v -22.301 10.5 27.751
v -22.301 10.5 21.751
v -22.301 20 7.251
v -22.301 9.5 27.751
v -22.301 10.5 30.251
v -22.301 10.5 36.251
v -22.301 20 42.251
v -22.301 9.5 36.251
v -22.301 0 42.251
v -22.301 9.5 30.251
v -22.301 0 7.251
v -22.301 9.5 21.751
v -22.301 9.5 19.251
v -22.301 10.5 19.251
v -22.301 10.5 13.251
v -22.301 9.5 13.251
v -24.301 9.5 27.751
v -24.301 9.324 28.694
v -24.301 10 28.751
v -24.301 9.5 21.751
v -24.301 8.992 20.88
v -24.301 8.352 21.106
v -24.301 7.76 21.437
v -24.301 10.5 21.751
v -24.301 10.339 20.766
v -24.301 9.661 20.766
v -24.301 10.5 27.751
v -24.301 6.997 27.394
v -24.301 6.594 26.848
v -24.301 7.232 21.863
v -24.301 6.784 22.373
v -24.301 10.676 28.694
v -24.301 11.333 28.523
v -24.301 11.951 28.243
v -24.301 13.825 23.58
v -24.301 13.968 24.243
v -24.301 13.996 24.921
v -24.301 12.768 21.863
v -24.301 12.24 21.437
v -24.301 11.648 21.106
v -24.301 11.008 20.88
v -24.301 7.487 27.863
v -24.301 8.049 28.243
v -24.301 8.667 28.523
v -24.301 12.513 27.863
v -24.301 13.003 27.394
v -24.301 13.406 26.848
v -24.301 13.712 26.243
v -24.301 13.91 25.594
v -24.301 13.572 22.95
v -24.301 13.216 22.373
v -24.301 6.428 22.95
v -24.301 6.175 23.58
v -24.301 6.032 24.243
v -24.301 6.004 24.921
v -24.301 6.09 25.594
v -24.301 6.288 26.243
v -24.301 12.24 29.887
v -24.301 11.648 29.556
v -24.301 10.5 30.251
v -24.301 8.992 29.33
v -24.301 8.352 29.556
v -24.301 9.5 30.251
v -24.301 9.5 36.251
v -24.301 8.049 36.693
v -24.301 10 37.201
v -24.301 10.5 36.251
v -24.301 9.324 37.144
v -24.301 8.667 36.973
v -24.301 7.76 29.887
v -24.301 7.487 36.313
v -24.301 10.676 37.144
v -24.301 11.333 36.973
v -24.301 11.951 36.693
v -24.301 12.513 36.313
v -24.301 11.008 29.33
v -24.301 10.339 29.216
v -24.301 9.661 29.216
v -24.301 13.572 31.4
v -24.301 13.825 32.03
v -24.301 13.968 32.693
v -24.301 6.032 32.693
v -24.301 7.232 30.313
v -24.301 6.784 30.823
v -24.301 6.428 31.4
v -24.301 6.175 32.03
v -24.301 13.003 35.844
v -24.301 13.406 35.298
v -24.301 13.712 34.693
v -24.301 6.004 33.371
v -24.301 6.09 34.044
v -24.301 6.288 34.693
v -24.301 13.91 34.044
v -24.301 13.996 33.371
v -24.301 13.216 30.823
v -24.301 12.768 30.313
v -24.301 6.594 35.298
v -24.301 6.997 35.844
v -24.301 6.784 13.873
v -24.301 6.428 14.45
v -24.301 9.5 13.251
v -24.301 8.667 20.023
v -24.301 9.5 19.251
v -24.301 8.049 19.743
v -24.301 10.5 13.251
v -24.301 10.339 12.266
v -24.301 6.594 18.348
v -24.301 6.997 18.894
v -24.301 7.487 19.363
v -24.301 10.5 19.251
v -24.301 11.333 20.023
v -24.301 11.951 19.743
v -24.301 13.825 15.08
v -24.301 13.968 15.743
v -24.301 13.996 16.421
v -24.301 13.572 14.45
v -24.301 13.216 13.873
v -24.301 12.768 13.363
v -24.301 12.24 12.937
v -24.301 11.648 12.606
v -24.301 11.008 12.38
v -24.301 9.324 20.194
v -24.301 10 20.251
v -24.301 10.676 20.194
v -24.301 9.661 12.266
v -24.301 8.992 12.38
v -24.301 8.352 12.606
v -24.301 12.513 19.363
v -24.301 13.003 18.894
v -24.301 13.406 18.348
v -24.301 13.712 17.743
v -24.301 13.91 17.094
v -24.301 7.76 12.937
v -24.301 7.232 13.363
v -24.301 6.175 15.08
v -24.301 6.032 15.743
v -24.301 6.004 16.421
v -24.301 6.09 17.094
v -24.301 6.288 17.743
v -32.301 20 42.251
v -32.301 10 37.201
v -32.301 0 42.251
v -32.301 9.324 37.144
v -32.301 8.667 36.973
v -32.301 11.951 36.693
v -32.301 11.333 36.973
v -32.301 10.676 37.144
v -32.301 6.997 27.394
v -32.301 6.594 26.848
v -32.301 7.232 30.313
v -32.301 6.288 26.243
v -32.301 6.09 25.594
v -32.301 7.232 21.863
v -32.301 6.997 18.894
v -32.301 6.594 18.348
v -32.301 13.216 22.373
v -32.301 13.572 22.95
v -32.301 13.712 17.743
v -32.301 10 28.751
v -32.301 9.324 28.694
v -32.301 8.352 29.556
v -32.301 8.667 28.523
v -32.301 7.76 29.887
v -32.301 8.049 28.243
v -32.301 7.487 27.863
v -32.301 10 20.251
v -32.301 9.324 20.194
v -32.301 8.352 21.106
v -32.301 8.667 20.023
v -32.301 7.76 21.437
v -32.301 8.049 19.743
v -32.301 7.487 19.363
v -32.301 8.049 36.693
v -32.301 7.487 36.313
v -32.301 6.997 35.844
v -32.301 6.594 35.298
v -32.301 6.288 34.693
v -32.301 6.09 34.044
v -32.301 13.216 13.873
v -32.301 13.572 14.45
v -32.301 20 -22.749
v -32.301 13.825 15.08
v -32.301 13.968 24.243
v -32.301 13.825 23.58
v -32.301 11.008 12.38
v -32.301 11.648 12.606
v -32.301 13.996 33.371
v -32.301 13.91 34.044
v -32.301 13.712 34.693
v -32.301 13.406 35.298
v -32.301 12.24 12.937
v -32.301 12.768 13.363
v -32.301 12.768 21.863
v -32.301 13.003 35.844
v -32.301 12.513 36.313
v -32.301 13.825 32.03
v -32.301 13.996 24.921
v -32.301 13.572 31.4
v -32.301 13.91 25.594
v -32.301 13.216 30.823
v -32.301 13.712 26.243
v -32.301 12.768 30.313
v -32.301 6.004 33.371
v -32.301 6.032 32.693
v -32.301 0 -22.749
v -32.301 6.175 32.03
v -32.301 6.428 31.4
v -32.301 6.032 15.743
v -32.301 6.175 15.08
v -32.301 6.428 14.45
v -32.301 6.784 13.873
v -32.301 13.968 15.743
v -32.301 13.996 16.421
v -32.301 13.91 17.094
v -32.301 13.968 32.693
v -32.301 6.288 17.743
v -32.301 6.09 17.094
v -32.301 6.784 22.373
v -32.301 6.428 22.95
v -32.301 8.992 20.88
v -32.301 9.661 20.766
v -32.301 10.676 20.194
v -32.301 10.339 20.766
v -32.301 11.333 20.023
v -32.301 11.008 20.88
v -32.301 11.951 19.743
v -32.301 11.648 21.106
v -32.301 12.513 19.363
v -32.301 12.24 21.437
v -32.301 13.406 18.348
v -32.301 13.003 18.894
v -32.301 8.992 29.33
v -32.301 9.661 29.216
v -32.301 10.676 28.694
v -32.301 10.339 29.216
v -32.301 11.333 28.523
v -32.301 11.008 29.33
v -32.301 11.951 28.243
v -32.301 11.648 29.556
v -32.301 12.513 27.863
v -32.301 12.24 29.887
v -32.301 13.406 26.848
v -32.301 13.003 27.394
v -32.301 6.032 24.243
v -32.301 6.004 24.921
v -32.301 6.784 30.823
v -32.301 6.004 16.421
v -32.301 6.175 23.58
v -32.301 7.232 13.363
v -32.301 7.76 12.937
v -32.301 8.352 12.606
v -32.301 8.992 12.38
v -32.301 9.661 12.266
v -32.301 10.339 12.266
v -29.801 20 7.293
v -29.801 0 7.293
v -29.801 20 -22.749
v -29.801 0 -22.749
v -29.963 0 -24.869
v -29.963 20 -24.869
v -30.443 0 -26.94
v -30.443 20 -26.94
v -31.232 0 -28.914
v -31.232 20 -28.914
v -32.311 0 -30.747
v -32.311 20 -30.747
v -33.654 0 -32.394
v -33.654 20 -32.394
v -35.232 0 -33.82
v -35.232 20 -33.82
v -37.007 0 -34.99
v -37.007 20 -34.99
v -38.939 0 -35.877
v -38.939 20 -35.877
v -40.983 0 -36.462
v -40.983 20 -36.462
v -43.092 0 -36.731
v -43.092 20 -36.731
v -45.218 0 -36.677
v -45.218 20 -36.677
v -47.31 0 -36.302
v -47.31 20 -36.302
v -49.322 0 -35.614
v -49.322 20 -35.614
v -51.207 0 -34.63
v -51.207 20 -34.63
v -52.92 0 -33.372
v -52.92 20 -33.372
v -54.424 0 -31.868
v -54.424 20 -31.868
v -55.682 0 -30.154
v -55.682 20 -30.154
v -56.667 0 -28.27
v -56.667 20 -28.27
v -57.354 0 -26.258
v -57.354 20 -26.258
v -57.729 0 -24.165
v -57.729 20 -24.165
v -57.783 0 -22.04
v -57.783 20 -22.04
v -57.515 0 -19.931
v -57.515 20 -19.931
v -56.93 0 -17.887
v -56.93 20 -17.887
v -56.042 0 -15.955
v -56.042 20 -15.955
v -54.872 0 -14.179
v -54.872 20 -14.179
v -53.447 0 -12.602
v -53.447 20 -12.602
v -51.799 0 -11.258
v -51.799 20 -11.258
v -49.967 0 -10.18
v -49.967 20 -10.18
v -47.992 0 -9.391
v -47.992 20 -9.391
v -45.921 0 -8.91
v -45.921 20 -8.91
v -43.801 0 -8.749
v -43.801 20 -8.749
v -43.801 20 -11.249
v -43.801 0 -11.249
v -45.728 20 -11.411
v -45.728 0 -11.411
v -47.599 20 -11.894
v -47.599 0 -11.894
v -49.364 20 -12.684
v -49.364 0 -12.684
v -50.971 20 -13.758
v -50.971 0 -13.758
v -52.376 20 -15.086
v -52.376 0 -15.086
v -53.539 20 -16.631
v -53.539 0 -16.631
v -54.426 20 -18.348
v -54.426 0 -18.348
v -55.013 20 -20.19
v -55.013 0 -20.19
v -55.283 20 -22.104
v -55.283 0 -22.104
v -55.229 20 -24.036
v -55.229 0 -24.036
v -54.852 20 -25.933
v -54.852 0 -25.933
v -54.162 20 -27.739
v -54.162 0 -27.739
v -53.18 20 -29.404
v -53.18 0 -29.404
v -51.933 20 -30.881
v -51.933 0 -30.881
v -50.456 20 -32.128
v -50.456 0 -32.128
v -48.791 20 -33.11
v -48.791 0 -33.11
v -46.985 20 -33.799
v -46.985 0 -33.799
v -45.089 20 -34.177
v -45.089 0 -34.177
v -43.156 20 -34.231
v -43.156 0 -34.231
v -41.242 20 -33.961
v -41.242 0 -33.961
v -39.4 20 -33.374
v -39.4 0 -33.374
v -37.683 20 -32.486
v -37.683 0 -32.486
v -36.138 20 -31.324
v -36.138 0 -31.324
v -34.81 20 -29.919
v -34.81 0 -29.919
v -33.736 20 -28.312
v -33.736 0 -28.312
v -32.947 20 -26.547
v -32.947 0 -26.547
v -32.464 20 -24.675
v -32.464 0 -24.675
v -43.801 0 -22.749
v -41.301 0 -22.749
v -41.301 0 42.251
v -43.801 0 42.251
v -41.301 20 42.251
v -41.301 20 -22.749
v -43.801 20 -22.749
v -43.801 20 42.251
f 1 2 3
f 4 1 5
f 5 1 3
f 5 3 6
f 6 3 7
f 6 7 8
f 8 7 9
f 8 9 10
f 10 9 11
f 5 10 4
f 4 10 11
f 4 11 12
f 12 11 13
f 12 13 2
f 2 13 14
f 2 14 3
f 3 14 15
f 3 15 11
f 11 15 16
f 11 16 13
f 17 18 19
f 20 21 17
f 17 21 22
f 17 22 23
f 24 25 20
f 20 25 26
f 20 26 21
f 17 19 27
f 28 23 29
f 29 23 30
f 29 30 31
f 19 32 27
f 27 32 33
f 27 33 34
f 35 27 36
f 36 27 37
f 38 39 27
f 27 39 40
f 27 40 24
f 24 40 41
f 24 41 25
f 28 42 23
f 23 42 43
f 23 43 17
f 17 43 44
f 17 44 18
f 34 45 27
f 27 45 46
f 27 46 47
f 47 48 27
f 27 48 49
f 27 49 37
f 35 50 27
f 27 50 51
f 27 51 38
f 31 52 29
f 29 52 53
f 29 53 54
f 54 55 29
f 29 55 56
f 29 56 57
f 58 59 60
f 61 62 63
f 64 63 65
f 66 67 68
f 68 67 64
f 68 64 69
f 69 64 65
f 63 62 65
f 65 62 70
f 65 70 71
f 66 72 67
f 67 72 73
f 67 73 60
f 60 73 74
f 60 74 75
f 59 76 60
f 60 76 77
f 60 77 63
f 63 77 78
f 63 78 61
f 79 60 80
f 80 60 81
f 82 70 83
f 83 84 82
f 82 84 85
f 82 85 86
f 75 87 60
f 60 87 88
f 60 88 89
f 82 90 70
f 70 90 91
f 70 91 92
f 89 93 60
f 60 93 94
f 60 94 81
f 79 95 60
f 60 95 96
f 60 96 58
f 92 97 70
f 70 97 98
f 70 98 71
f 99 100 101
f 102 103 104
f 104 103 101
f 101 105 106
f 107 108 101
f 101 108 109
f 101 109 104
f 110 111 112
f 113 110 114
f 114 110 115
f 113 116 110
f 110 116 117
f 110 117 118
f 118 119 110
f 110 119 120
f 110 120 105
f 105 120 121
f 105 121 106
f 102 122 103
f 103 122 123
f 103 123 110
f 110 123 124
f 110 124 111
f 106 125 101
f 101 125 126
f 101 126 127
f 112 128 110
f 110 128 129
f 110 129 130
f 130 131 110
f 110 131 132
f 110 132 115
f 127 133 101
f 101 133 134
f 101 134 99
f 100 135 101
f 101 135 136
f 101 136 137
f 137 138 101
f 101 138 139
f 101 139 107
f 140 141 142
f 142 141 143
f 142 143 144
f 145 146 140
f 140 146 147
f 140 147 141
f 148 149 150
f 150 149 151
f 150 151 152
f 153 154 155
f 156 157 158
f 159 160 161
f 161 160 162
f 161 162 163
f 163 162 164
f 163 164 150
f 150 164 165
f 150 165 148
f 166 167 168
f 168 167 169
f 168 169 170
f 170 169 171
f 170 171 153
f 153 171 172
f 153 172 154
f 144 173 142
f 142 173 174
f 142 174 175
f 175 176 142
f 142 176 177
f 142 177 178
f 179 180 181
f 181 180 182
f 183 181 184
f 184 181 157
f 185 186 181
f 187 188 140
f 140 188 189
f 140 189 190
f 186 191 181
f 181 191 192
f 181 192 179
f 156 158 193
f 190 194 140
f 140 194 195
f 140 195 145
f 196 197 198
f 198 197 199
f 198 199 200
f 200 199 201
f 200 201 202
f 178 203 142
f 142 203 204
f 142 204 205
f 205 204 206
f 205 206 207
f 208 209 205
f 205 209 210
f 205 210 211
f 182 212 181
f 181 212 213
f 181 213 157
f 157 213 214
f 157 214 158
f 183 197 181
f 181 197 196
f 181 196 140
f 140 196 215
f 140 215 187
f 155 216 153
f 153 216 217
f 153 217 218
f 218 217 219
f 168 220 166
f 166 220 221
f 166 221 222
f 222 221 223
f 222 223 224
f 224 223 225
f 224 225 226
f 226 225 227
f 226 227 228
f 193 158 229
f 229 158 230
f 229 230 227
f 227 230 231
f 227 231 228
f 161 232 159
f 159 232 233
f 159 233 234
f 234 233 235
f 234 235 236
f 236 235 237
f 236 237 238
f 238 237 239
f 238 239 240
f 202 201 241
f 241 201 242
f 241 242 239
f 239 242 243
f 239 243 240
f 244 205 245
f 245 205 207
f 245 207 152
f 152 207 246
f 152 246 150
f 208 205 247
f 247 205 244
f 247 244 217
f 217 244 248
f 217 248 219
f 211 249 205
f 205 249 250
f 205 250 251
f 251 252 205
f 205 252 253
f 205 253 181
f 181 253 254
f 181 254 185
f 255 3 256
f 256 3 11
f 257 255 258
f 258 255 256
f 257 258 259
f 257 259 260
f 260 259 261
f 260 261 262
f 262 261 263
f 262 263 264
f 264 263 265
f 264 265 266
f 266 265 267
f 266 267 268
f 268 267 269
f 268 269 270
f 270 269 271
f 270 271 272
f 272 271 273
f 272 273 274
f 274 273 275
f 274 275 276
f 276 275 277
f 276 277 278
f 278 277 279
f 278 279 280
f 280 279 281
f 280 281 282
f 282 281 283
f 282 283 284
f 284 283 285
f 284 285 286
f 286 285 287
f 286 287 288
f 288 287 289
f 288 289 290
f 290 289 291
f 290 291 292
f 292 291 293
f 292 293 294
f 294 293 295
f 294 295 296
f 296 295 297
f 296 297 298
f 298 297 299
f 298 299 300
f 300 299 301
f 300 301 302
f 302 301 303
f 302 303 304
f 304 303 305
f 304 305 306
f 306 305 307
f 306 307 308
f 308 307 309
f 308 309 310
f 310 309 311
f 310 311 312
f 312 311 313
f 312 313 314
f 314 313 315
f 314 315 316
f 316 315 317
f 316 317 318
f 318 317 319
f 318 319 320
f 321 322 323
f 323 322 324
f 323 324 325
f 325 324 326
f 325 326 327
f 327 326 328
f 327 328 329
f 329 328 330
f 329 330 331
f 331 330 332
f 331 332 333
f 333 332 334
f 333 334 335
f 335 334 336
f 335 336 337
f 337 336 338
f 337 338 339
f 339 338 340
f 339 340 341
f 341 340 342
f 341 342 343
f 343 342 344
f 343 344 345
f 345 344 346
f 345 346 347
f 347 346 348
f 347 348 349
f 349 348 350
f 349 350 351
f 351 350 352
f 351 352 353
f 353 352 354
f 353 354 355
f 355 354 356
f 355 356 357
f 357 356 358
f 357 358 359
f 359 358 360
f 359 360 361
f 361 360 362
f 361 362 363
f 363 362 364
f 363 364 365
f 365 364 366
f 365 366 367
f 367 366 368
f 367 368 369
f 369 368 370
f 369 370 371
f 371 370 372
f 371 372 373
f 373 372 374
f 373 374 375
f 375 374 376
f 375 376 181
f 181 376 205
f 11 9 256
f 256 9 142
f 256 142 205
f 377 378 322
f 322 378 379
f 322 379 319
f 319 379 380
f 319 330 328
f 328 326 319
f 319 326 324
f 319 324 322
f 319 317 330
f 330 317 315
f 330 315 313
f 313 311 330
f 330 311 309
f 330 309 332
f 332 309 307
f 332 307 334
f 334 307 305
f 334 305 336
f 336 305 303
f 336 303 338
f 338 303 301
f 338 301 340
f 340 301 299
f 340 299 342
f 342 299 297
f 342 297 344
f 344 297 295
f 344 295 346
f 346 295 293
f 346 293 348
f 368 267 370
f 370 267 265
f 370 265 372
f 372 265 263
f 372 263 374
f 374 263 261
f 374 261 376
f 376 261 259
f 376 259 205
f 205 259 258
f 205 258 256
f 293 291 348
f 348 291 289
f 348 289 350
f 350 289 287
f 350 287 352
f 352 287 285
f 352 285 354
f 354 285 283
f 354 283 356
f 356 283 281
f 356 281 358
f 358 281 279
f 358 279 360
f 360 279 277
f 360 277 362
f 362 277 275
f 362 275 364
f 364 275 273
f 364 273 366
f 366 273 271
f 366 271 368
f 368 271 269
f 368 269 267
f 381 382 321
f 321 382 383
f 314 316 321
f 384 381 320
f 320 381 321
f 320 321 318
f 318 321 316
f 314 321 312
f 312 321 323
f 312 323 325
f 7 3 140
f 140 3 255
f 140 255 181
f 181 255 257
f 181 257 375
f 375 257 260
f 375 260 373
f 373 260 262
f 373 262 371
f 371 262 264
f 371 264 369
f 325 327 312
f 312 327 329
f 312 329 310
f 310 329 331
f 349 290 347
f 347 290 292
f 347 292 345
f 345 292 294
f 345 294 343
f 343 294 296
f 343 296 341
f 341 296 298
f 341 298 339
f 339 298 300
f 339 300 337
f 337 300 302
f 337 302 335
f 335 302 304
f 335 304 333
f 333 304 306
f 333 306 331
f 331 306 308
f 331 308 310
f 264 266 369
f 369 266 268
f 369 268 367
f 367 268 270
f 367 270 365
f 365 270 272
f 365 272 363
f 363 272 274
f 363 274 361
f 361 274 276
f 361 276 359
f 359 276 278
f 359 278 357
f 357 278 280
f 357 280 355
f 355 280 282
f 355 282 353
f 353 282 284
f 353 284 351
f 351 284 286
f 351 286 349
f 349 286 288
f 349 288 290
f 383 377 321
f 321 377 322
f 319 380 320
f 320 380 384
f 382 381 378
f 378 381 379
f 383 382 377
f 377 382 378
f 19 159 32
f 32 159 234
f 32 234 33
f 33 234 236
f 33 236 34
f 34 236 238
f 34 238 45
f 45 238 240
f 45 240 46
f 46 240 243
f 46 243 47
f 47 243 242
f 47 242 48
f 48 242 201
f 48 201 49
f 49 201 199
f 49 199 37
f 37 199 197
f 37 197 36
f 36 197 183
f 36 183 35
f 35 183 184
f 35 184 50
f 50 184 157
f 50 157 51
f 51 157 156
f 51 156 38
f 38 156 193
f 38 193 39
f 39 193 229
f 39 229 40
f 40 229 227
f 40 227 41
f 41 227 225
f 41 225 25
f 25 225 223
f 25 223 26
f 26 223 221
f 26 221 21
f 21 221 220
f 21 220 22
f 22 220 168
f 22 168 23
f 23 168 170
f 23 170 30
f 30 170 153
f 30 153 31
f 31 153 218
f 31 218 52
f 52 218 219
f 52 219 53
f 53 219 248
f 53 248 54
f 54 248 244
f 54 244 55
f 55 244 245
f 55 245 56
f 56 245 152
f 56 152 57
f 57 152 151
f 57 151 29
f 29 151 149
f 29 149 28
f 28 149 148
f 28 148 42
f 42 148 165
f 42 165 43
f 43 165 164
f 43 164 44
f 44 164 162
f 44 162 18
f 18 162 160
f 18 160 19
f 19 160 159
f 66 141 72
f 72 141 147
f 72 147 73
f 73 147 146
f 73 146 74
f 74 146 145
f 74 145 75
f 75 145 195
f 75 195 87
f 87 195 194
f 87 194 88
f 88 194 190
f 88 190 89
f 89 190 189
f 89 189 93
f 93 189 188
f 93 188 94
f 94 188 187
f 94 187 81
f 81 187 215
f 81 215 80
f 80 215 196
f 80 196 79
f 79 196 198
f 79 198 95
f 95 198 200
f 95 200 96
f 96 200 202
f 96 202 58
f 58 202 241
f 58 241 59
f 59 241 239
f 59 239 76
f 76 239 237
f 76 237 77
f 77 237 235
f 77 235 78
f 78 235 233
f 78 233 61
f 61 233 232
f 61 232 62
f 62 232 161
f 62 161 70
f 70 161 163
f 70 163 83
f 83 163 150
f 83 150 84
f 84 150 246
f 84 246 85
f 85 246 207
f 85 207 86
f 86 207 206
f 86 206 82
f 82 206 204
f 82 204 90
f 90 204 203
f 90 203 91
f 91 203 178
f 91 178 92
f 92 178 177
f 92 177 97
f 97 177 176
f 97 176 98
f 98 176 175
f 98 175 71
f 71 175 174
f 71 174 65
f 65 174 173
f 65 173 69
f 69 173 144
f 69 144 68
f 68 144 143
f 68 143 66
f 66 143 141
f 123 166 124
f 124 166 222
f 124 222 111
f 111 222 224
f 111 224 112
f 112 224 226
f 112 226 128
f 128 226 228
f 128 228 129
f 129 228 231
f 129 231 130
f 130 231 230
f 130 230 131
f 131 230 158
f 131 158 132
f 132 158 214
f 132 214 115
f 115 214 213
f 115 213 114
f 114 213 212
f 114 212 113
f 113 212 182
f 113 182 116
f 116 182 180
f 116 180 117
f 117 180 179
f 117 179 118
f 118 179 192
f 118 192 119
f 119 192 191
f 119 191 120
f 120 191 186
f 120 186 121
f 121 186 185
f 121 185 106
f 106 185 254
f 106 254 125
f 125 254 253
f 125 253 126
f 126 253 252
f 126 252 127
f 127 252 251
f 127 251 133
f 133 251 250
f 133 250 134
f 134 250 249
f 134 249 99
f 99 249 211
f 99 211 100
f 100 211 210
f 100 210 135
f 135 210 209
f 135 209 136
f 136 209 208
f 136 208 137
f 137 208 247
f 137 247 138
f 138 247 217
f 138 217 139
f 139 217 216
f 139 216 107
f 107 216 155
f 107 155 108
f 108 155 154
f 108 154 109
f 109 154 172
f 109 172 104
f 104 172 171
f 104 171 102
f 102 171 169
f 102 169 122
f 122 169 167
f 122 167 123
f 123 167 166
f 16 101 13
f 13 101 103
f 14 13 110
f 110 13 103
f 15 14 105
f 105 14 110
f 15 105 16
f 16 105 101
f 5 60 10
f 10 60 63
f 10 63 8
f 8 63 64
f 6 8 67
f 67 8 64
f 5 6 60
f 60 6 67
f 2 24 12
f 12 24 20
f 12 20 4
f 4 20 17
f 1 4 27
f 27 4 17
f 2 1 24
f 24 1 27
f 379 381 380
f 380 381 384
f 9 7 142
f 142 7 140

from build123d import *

# Parameters (mm, degrees)
BOSS_EXTRUDE1_DEPTH = 20
SKETCH2_R           = 4
CUT_EXTRUDE2_DEPTH  = 8
CUT_EXTRUDE4_DEPTH  = 10
SKETCH6_W           = 2.5
SKETCH6_H           = 20
SKETCH6_W_2         = 10
BOSS_EXTRUDE3_DEPTH = 5


with BuildPart() as part:
    # Sketch1 → Boss-Extrude1 (new body)
    with BuildSketch(Plane(origin=(0, 0, 0), x_dir=(1, 0, 0), z_dir=(0, 1, 0))):
        with BuildLine():
            Line((-29.801242739, -7.293134051), (-29.801242739, 22.74889672))
            ThreePointArc((-29.801242739, 22.74889672), (-53.700737675, 32.648391657), (-43.801242739, 8.74889672))
            Line((-43.801242739, 8.74889672), (-43.801242739, -37.25110328))
            Line((-43.801242739, -37.25110328), (-41.301242739, -37.25110328))
            Line((-41.301242739, -37.25110328), (-41.301242739, 22.74889672))
            Line((-41.301242739, 22.74889672), (-43.801242739, 22.74889672))
            Line((-43.801242739, 22.74889672), (-43.801242739, 11.24889672))
            ThreePointArc((-43.801242739, 11.24889672), (-51.932970722, 30.880624704), (-32.301242739, 22.74889672))
            Line((-32.301242739, 22.74889672), (-32.301242739, -37.25110328))
            Line((-32.301242739, -37.25110328), (-22.301242739, -37.25110328))
            Line((-22.301242739, -37.25110328), (-22.301242739, -7.25110328))
            Line((-22.301242739, -7.25110328), (-29.801242739, -7.293134051))
        make_face()
    extrude(amount=BOSS_EXTRUDE1_DEPTH)

    # Sketch2 → Cut-Extrude2 (cut)
    with BuildSketch(Plane.ZY.offset(32.301242739)):
        with Locations((16.25110328, 10)):
            Circle(SKETCH2_R)
        with Locations((33.20110328, 10)):
            Circle(SKETCH2_R)
        with Locations((24.75110328, 10)):
            Circle(SKETCH2_R)
    extrude(amount=-CUT_EXTRUDE2_DEPTH, mode=Mode.SUBTRACT)

    # Sketch3 → Cut-Extrude4 (cut)
    with BuildSketch(Plane(origin=(-22.301242739, 0, 0), x_dir=(0, 0, -1), z_dir=(1, 0, 0))):
        Polygon((-24.75110328, 10), (-27.75110328, 10.5), (-27.75110328, 9.5), align=None)
        Polygon((-21.75110328, 10.5), (-27.75110328, 10.5), (-24.75110328, 10), align=None)
        Polygon((-21.75110328, 10.5), (-24.75110328, 10), (-21.75110328, 9.5), align=None)
        Polygon((-21.75110328, 9.5), (-24.75110328, 10), (-27.75110328, 9.5), align=None)
        Polygon((-16.25110328, 10), (-19.25110328, 10.5), (-19.25110328, 9.5), align=None)
        Polygon((-13.25110328, 10.5), (-16.25110328, 10), (-13.25110328, 9.5), align=None)
        Polygon((-13.25110328, 10.5), (-19.25110328, 10.5), (-16.25110328, 10), align=None)
        Polygon((-13.25110328, 9.5), (-16.25110328, 10), (-19.25110328, 9.5), align=None)
        Polygon((-30.25110328, 10.5), (-33.25110328, 10), (-30.25110328, 9.5), align=None)
        Polygon((-30.25110328, 10.5), (-36.25110328, 10.5), (-33.25110328, 10), align=None)
        Polygon((-33.25110328, 10), (-36.25110328, 10.5), (-36.25110328, 9.5), align=None)
        Polygon((-30.25110328, 9.5), (-33.25110328, 10), (-36.25110328, 9.5), align=None)
    extrude(amount=-CUT_EXTRUDE4_DEPTH, mode=Mode.SUBTRACT)

    # Sketch6 → Boss-Extrude3 (add)
    with BuildSketch(Plane.XY.offset(37.25110328)):
        with Locations((-42.551242739, 10)):
            Rectangle(SKETCH6_W, SKETCH6_H)
        with Locations((-27.301242739, 10)):
            Rectangle(SKETCH6_W_2, SKETCH6_H)
    extrude(amount=BOSS_EXTRUDE3_DEPTH)


solid = part.part
